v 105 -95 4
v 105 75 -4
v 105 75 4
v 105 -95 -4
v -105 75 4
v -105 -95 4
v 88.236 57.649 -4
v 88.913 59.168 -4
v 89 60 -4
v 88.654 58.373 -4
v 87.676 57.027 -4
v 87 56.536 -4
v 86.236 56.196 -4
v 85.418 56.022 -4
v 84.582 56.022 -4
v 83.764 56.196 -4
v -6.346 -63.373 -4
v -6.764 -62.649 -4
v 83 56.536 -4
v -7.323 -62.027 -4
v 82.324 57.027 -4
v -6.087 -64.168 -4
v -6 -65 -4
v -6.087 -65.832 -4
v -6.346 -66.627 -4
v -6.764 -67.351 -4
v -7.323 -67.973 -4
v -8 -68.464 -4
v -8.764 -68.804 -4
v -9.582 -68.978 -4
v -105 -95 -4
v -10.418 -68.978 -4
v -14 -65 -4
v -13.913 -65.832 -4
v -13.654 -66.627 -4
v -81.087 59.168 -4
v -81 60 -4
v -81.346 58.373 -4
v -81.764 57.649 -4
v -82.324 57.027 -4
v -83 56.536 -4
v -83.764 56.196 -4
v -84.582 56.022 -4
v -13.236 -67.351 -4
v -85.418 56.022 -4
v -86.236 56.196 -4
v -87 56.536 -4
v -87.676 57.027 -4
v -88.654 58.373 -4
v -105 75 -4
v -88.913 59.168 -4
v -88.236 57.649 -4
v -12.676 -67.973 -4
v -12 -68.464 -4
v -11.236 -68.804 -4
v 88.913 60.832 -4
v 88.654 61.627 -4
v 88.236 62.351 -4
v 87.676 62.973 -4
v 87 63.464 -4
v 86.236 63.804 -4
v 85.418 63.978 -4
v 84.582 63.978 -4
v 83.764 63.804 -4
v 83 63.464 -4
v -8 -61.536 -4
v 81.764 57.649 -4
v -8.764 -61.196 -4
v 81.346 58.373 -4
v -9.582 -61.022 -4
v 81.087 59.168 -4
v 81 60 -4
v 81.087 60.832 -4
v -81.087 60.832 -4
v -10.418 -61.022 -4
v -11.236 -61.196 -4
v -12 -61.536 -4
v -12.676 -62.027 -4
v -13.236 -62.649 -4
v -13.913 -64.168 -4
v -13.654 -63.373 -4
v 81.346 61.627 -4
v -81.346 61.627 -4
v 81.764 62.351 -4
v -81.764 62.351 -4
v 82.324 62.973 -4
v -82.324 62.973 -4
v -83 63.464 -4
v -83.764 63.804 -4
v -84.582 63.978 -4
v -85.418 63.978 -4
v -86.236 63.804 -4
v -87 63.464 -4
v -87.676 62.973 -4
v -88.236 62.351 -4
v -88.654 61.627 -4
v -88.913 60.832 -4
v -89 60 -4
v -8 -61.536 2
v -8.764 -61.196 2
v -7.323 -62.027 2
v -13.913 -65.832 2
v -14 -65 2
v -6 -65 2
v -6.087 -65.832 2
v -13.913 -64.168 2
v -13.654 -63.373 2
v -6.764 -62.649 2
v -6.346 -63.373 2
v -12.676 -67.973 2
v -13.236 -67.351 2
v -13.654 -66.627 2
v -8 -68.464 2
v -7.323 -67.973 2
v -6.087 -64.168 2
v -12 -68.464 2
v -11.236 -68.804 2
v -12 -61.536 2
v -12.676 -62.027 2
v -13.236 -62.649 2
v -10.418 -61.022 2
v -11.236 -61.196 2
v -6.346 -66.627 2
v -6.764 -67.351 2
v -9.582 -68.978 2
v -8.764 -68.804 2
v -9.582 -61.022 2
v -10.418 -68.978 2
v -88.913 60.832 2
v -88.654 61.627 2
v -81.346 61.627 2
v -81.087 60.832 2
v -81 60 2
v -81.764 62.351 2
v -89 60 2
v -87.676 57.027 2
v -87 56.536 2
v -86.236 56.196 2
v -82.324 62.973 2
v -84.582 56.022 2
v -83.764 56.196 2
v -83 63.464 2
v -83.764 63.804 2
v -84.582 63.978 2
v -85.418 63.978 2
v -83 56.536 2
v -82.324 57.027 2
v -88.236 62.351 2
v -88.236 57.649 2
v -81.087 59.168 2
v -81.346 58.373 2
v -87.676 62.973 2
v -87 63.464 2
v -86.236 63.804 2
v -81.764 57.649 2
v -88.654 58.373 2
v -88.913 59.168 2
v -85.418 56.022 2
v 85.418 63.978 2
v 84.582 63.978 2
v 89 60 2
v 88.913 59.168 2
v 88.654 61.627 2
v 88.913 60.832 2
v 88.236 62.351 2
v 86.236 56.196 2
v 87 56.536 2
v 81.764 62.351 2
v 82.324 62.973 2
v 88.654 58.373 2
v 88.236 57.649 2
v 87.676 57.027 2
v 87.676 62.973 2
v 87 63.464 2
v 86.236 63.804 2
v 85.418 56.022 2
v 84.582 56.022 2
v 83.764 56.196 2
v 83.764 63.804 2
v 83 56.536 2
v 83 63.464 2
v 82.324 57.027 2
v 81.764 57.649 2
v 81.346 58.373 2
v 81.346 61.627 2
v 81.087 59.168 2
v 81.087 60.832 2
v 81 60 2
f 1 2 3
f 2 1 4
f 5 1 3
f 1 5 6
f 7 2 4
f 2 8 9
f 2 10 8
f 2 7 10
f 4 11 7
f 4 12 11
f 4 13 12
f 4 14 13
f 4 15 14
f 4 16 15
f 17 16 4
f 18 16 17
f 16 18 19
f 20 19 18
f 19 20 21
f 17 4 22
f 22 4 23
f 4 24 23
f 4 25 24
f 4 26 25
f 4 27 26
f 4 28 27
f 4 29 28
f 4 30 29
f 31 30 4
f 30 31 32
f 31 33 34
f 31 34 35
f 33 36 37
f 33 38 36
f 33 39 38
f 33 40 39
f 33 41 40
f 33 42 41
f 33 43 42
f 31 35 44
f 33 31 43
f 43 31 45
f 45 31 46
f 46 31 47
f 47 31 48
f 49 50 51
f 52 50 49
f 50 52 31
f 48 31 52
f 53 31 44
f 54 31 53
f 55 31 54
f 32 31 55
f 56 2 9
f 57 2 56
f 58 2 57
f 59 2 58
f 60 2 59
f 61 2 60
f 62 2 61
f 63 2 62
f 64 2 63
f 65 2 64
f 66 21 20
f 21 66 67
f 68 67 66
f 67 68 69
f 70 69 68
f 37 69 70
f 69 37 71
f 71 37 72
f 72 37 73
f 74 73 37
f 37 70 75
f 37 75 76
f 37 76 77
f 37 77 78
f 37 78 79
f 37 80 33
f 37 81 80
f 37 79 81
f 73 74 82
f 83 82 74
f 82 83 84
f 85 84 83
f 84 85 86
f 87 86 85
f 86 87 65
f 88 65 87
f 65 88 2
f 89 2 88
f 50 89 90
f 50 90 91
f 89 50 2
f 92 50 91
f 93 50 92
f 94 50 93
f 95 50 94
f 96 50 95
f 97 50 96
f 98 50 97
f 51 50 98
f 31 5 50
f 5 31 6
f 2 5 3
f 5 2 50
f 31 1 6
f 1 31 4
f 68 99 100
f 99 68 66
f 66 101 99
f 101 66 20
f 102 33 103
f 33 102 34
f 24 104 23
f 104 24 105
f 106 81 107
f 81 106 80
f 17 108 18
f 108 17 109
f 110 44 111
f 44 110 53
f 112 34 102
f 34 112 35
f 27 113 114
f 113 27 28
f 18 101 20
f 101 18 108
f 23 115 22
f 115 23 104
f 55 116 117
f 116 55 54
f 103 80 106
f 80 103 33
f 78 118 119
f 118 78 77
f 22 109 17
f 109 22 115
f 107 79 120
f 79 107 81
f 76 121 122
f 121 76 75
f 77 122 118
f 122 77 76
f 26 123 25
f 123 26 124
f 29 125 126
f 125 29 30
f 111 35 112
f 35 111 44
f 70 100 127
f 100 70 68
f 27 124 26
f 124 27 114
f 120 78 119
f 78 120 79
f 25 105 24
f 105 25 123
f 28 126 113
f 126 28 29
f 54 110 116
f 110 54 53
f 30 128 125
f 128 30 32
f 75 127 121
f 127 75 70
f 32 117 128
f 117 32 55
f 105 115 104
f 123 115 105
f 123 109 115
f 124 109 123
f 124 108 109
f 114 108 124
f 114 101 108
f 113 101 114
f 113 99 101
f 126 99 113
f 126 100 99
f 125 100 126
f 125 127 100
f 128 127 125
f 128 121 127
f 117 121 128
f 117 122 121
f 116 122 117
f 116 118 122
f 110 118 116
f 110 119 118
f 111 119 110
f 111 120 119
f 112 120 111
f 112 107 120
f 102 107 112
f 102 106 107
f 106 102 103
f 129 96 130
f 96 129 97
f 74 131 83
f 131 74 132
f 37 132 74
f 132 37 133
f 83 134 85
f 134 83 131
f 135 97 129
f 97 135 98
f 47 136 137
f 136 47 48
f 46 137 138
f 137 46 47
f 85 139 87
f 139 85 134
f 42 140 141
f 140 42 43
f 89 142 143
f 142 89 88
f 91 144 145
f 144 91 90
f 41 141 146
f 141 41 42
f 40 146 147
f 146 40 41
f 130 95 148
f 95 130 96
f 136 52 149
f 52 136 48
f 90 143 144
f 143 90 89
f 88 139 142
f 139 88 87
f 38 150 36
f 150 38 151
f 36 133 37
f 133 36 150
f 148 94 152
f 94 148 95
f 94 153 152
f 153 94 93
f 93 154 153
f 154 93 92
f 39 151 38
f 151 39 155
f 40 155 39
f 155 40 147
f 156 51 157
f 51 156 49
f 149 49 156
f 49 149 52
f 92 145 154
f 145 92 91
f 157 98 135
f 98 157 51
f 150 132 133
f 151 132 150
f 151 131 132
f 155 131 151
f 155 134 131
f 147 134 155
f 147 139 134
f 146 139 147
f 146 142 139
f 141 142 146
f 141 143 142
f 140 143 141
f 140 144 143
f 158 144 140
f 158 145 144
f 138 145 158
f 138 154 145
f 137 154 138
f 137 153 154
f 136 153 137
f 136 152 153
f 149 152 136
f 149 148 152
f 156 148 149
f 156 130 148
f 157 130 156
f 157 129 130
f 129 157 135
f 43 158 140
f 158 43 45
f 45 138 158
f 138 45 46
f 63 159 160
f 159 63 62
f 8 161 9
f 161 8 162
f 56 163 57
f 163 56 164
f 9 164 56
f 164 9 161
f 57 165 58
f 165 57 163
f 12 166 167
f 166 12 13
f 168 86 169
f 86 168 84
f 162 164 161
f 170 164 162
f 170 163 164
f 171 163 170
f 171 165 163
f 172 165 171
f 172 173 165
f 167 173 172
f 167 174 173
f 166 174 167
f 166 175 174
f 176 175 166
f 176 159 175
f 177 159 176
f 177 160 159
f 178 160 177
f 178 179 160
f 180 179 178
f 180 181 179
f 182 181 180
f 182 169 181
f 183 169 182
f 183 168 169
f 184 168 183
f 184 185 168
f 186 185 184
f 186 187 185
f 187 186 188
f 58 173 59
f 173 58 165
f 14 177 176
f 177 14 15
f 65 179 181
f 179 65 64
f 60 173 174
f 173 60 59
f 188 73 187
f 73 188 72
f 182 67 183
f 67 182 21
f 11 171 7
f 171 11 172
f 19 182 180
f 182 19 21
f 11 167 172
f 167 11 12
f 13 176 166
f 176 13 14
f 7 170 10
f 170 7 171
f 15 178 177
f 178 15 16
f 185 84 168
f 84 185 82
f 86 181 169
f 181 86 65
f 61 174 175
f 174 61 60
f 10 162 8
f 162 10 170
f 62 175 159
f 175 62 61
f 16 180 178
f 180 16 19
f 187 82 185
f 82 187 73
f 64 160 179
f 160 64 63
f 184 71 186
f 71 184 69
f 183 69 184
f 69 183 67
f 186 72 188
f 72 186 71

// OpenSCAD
// Multi_Tissue_Recording Cap v1
// Jack F. Murphy <me@jackmurphy.nyc>
// https://github.com/teammurphy/Multi_Tissue_CAD

// Smoothness
$fn = 30;

// Stage Dimensions
stage_len=210;
stage_width=170;
stage_thickness=8;

// Rod Diameters
rod=8;

difference() {
    translate([0, -10, 0])
        cube([stage_len, stage_width, stage_thickness], center=true);
    translate([-10, -65, (stage_thickness/2)*-1])
        cylinder(d=rod, h=stage_thickness-2);
    translate([-85, 60, (stage_thickness/2)*-1])
        cylinder(d=rod, h=stage_thickness-2);
    translate([85, 60, (stage_thickness/2)*-1])
        cylinder(d=rod, h=stage_thickness-2);
}
